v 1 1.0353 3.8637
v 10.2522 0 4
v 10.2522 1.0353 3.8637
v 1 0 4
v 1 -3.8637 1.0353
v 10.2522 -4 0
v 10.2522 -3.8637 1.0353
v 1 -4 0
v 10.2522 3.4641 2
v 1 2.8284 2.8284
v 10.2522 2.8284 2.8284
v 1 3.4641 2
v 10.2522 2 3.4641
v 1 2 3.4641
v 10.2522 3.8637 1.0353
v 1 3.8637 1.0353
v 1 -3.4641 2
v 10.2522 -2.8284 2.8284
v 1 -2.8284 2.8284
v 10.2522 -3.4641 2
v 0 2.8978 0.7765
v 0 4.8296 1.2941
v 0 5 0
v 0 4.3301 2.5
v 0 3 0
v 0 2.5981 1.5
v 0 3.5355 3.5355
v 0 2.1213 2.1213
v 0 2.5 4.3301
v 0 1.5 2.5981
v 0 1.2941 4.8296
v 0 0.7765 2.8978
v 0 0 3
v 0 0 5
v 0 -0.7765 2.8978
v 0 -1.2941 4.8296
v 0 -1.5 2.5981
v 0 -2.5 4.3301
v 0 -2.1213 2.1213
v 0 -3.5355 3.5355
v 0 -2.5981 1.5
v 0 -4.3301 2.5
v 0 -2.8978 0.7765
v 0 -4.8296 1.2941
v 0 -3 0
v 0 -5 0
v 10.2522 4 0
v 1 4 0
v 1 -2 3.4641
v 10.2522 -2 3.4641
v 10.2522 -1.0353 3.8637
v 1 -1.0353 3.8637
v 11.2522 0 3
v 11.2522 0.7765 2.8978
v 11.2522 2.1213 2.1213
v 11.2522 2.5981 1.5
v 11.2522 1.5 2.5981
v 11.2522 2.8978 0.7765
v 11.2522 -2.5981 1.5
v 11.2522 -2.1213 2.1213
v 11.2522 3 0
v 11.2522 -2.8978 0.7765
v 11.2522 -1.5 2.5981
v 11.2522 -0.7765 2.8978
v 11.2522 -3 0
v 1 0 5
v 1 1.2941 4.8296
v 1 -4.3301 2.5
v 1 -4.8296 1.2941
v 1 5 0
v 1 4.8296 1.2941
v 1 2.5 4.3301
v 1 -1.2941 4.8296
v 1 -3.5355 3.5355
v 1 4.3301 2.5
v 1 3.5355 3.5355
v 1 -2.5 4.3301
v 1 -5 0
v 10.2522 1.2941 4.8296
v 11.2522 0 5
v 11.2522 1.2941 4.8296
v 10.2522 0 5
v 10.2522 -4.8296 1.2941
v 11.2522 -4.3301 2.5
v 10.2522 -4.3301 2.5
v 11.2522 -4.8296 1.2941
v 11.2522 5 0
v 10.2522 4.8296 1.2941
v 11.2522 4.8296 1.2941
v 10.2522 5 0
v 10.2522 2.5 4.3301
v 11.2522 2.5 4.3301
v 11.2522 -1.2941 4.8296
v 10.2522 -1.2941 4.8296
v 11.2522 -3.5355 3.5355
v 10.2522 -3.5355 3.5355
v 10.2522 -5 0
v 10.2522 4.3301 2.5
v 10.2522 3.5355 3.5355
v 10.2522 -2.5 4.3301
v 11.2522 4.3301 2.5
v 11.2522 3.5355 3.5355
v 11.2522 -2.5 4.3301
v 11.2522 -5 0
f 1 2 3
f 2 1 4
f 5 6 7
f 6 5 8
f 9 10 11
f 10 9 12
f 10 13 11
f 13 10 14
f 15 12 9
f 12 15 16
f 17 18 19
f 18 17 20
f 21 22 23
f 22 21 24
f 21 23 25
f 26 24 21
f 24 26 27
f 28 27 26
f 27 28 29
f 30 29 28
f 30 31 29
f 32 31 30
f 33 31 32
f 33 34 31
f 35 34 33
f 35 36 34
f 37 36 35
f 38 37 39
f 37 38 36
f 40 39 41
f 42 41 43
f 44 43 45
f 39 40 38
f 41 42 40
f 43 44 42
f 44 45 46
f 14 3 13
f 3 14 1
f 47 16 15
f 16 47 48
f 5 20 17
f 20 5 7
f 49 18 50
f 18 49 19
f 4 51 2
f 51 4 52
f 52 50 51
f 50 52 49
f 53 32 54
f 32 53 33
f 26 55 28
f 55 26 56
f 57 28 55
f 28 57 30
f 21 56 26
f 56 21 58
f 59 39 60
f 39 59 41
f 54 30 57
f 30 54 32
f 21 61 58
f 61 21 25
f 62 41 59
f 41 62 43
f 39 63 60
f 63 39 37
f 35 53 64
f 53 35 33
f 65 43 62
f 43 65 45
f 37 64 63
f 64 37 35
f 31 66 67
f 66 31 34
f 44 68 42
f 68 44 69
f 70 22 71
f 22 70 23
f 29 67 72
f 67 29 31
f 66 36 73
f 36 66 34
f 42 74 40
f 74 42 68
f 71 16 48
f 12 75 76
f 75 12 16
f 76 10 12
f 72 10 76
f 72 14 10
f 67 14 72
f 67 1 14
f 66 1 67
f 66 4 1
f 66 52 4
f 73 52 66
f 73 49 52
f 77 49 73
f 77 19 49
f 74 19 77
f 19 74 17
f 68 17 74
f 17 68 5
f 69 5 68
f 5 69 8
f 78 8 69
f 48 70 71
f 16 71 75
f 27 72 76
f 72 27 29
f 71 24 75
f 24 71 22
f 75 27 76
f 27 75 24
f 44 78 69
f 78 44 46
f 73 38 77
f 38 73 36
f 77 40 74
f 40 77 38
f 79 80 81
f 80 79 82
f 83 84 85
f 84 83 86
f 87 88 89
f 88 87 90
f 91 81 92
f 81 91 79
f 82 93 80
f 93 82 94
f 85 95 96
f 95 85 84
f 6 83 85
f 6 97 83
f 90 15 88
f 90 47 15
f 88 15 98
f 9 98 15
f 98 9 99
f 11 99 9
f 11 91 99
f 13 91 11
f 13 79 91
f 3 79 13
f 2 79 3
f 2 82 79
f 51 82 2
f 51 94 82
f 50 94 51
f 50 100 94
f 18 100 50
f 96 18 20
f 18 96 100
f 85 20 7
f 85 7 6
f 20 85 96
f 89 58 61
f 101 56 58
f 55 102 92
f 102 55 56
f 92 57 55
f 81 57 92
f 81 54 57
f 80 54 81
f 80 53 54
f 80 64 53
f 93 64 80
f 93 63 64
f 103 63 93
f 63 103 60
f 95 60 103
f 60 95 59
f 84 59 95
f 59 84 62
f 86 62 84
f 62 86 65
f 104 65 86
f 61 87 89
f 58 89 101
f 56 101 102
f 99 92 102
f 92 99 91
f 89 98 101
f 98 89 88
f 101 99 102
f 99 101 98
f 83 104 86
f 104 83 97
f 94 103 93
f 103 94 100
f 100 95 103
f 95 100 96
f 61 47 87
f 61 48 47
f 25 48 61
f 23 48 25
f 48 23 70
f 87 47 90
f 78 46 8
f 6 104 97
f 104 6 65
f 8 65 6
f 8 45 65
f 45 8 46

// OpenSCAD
// file: ../build_environments.scad
// build_environments.scad: modules to build level sections
//

module pool(diameter=10.0, wall_height=2.0, step_width=3.0, connections=[])
{
    difference() {
        union() {
        difference() {
            cylinder(h=0.5,r1=diameter+step_width,r2=diameter+step_width,$fn=48);
            translate([0,0,-0.1])
                cylinder(h=0.7,r1=diameter,r2=diameter,$fn=48);
        }
        difference() {
            cylinder(h=wall_height,r1=diameter+step_width+1.0,r2=diameter+step_width+1.0,$fn=48);
            translate([0,0,-0.1])
                cylinder(h=wall_height+0.2,r1=diameter+step_width,r2=diameter+step_width,$fn=48);
        }
        }
    
        for (c = connections)
        {
            rotate([0,90,0]) {
                angle = atan2(c[1],c[0]);
                rotate([-angle,0,0]) {
                    cylinder(h=diameter+5.0,r1=c[2],r2=c[2],$fn=48);
                }
            }
        }
    }
}

module straight(length=10.0, width=2.0, dy1=0.0, dy2=0.0, dz=0.0)
{
    dims = [0, 0, 0, 0, 0, (dz/length)];
    matrix = [
        [ 1, dims[0], dims[1], 0 ],
        [ dims[2], 1, dims[4], 0 ],
        [ dims[5], dims[3], 1, 0 ],
        [ 0, 0, 0, 1 ]
    ];
    multmatrix(matrix)
    difference() {
        translate([dy1,0,0])
        union() {
            rotate([0,90,0]) {
                difference() {
                    cylinder(h=(length-dy1-dy2),r1=width+1.0,r2=width+1.0,$fn=24);
                    translate([0,0,-0.1])
                        cylinder(h=(length-dy1-dy2+0.2),r1=width,r2=width,$fn=24);
                }
                difference() {
                    cylinder(h=1.0,r1=width+2.0,r2=width+2.0,$fn=24);
                    translate([0,0,-0.1])
                        cylinder(h=1.2,r1=width,r2=width,$fn=24);
                }
                translate([0,0,(length-dy1-dy2)-1.0]) {
                    difference() {
                        cylinder(h=1.0,r1=width+2.0,r2=width+2.0,$fn=24);
                        translate([0,0,-0.1])
                            cylinder(h=1.2,r1=width,r2=width,$fn=24);
                    }
                }
            }
        }
        translate([0,0,-(2*width+4.0)/2])
            cube([3*length,3*length,2*width+4.0],center=true);
    }
}

module curve(p0=[0,0], center=[0,0], dir=1, angle=0.0, width=2.0)
{
    radius = sqrt((p0[0]-center[0])*(p0[0]-center[0]) + (p0[1]-center[1])*(p0[1]-center[1]));
    if (dir == 0) {
        difference() {
            rotate([0,0,-90])
            difference() {
                rotate_extrude(angle = angle, convexity = 10, $fn=32)
                    translate([radius, 0, 0])
                        circle(r = width+1.0,$fn=24);
                rotate([0,0,-1.0])
                    rotate_extrude(angle = angle+2.0, convexity = 10, $fn=32)
                        translate([radius, 0, 0])
                            circle(r = width,$fn=24);
            }
            translate([0,0,-(2*width+4.0)/2])
                cube([5*radius,5*radius,2*width+4.0],center=true);
        }
    }
    else {
        difference() {
            rotate([0,0,90])
            difference() {
                rotate_extrude(angle = -angle, convexity = 10, $fn=32)
                    translate([radius, 0, 0])
                        circle(r = width+1.0,$fn=24);
                rotate([0,0,1.0])
                    rotate_extrude(angle = -angle-2.0, convexity = 10, $fn=32)
                        translate([radius, 0, 0])
                            circle(r = width,$fn=24);
            }
            translate([0,0,-(2*width+4.0)/2])
                cube([5*radius,5*radius,2*width+4.0],center=true);
        }
    }

}

// test pool
//pool(diameter=12.0000, wall_height=3.0000, step_width=3.0000, connections=[[0.0000,-26.0000,2.0000], [23.6074,0.0000,2.0000]]);

// test straight, slope
//straight(length=26.0000, width=2.0000, dy1=11.8322, dy2=6.7082, dz=0.0000);
//straight(length=29.1549, width=12.0000, dy1=0.0000, dy2=0.0000, dz=-15.0000);

// test curve
//curve(p0=[23.6074, 0.0000], center=[23.6074, 5.0000], dir=0, angle=60.1011, width=2.0000);
//curve(p0=[33.6426, 12.4219], center=[37.9771, 9.9295], dir=1, angle=120.4627, width=2.0000);
// main file
use <../build_environments.scad>;
straight(length=11.2522, width=3.0000, dy1=0.0000, dy2=0.0000, dz=0.0000);
